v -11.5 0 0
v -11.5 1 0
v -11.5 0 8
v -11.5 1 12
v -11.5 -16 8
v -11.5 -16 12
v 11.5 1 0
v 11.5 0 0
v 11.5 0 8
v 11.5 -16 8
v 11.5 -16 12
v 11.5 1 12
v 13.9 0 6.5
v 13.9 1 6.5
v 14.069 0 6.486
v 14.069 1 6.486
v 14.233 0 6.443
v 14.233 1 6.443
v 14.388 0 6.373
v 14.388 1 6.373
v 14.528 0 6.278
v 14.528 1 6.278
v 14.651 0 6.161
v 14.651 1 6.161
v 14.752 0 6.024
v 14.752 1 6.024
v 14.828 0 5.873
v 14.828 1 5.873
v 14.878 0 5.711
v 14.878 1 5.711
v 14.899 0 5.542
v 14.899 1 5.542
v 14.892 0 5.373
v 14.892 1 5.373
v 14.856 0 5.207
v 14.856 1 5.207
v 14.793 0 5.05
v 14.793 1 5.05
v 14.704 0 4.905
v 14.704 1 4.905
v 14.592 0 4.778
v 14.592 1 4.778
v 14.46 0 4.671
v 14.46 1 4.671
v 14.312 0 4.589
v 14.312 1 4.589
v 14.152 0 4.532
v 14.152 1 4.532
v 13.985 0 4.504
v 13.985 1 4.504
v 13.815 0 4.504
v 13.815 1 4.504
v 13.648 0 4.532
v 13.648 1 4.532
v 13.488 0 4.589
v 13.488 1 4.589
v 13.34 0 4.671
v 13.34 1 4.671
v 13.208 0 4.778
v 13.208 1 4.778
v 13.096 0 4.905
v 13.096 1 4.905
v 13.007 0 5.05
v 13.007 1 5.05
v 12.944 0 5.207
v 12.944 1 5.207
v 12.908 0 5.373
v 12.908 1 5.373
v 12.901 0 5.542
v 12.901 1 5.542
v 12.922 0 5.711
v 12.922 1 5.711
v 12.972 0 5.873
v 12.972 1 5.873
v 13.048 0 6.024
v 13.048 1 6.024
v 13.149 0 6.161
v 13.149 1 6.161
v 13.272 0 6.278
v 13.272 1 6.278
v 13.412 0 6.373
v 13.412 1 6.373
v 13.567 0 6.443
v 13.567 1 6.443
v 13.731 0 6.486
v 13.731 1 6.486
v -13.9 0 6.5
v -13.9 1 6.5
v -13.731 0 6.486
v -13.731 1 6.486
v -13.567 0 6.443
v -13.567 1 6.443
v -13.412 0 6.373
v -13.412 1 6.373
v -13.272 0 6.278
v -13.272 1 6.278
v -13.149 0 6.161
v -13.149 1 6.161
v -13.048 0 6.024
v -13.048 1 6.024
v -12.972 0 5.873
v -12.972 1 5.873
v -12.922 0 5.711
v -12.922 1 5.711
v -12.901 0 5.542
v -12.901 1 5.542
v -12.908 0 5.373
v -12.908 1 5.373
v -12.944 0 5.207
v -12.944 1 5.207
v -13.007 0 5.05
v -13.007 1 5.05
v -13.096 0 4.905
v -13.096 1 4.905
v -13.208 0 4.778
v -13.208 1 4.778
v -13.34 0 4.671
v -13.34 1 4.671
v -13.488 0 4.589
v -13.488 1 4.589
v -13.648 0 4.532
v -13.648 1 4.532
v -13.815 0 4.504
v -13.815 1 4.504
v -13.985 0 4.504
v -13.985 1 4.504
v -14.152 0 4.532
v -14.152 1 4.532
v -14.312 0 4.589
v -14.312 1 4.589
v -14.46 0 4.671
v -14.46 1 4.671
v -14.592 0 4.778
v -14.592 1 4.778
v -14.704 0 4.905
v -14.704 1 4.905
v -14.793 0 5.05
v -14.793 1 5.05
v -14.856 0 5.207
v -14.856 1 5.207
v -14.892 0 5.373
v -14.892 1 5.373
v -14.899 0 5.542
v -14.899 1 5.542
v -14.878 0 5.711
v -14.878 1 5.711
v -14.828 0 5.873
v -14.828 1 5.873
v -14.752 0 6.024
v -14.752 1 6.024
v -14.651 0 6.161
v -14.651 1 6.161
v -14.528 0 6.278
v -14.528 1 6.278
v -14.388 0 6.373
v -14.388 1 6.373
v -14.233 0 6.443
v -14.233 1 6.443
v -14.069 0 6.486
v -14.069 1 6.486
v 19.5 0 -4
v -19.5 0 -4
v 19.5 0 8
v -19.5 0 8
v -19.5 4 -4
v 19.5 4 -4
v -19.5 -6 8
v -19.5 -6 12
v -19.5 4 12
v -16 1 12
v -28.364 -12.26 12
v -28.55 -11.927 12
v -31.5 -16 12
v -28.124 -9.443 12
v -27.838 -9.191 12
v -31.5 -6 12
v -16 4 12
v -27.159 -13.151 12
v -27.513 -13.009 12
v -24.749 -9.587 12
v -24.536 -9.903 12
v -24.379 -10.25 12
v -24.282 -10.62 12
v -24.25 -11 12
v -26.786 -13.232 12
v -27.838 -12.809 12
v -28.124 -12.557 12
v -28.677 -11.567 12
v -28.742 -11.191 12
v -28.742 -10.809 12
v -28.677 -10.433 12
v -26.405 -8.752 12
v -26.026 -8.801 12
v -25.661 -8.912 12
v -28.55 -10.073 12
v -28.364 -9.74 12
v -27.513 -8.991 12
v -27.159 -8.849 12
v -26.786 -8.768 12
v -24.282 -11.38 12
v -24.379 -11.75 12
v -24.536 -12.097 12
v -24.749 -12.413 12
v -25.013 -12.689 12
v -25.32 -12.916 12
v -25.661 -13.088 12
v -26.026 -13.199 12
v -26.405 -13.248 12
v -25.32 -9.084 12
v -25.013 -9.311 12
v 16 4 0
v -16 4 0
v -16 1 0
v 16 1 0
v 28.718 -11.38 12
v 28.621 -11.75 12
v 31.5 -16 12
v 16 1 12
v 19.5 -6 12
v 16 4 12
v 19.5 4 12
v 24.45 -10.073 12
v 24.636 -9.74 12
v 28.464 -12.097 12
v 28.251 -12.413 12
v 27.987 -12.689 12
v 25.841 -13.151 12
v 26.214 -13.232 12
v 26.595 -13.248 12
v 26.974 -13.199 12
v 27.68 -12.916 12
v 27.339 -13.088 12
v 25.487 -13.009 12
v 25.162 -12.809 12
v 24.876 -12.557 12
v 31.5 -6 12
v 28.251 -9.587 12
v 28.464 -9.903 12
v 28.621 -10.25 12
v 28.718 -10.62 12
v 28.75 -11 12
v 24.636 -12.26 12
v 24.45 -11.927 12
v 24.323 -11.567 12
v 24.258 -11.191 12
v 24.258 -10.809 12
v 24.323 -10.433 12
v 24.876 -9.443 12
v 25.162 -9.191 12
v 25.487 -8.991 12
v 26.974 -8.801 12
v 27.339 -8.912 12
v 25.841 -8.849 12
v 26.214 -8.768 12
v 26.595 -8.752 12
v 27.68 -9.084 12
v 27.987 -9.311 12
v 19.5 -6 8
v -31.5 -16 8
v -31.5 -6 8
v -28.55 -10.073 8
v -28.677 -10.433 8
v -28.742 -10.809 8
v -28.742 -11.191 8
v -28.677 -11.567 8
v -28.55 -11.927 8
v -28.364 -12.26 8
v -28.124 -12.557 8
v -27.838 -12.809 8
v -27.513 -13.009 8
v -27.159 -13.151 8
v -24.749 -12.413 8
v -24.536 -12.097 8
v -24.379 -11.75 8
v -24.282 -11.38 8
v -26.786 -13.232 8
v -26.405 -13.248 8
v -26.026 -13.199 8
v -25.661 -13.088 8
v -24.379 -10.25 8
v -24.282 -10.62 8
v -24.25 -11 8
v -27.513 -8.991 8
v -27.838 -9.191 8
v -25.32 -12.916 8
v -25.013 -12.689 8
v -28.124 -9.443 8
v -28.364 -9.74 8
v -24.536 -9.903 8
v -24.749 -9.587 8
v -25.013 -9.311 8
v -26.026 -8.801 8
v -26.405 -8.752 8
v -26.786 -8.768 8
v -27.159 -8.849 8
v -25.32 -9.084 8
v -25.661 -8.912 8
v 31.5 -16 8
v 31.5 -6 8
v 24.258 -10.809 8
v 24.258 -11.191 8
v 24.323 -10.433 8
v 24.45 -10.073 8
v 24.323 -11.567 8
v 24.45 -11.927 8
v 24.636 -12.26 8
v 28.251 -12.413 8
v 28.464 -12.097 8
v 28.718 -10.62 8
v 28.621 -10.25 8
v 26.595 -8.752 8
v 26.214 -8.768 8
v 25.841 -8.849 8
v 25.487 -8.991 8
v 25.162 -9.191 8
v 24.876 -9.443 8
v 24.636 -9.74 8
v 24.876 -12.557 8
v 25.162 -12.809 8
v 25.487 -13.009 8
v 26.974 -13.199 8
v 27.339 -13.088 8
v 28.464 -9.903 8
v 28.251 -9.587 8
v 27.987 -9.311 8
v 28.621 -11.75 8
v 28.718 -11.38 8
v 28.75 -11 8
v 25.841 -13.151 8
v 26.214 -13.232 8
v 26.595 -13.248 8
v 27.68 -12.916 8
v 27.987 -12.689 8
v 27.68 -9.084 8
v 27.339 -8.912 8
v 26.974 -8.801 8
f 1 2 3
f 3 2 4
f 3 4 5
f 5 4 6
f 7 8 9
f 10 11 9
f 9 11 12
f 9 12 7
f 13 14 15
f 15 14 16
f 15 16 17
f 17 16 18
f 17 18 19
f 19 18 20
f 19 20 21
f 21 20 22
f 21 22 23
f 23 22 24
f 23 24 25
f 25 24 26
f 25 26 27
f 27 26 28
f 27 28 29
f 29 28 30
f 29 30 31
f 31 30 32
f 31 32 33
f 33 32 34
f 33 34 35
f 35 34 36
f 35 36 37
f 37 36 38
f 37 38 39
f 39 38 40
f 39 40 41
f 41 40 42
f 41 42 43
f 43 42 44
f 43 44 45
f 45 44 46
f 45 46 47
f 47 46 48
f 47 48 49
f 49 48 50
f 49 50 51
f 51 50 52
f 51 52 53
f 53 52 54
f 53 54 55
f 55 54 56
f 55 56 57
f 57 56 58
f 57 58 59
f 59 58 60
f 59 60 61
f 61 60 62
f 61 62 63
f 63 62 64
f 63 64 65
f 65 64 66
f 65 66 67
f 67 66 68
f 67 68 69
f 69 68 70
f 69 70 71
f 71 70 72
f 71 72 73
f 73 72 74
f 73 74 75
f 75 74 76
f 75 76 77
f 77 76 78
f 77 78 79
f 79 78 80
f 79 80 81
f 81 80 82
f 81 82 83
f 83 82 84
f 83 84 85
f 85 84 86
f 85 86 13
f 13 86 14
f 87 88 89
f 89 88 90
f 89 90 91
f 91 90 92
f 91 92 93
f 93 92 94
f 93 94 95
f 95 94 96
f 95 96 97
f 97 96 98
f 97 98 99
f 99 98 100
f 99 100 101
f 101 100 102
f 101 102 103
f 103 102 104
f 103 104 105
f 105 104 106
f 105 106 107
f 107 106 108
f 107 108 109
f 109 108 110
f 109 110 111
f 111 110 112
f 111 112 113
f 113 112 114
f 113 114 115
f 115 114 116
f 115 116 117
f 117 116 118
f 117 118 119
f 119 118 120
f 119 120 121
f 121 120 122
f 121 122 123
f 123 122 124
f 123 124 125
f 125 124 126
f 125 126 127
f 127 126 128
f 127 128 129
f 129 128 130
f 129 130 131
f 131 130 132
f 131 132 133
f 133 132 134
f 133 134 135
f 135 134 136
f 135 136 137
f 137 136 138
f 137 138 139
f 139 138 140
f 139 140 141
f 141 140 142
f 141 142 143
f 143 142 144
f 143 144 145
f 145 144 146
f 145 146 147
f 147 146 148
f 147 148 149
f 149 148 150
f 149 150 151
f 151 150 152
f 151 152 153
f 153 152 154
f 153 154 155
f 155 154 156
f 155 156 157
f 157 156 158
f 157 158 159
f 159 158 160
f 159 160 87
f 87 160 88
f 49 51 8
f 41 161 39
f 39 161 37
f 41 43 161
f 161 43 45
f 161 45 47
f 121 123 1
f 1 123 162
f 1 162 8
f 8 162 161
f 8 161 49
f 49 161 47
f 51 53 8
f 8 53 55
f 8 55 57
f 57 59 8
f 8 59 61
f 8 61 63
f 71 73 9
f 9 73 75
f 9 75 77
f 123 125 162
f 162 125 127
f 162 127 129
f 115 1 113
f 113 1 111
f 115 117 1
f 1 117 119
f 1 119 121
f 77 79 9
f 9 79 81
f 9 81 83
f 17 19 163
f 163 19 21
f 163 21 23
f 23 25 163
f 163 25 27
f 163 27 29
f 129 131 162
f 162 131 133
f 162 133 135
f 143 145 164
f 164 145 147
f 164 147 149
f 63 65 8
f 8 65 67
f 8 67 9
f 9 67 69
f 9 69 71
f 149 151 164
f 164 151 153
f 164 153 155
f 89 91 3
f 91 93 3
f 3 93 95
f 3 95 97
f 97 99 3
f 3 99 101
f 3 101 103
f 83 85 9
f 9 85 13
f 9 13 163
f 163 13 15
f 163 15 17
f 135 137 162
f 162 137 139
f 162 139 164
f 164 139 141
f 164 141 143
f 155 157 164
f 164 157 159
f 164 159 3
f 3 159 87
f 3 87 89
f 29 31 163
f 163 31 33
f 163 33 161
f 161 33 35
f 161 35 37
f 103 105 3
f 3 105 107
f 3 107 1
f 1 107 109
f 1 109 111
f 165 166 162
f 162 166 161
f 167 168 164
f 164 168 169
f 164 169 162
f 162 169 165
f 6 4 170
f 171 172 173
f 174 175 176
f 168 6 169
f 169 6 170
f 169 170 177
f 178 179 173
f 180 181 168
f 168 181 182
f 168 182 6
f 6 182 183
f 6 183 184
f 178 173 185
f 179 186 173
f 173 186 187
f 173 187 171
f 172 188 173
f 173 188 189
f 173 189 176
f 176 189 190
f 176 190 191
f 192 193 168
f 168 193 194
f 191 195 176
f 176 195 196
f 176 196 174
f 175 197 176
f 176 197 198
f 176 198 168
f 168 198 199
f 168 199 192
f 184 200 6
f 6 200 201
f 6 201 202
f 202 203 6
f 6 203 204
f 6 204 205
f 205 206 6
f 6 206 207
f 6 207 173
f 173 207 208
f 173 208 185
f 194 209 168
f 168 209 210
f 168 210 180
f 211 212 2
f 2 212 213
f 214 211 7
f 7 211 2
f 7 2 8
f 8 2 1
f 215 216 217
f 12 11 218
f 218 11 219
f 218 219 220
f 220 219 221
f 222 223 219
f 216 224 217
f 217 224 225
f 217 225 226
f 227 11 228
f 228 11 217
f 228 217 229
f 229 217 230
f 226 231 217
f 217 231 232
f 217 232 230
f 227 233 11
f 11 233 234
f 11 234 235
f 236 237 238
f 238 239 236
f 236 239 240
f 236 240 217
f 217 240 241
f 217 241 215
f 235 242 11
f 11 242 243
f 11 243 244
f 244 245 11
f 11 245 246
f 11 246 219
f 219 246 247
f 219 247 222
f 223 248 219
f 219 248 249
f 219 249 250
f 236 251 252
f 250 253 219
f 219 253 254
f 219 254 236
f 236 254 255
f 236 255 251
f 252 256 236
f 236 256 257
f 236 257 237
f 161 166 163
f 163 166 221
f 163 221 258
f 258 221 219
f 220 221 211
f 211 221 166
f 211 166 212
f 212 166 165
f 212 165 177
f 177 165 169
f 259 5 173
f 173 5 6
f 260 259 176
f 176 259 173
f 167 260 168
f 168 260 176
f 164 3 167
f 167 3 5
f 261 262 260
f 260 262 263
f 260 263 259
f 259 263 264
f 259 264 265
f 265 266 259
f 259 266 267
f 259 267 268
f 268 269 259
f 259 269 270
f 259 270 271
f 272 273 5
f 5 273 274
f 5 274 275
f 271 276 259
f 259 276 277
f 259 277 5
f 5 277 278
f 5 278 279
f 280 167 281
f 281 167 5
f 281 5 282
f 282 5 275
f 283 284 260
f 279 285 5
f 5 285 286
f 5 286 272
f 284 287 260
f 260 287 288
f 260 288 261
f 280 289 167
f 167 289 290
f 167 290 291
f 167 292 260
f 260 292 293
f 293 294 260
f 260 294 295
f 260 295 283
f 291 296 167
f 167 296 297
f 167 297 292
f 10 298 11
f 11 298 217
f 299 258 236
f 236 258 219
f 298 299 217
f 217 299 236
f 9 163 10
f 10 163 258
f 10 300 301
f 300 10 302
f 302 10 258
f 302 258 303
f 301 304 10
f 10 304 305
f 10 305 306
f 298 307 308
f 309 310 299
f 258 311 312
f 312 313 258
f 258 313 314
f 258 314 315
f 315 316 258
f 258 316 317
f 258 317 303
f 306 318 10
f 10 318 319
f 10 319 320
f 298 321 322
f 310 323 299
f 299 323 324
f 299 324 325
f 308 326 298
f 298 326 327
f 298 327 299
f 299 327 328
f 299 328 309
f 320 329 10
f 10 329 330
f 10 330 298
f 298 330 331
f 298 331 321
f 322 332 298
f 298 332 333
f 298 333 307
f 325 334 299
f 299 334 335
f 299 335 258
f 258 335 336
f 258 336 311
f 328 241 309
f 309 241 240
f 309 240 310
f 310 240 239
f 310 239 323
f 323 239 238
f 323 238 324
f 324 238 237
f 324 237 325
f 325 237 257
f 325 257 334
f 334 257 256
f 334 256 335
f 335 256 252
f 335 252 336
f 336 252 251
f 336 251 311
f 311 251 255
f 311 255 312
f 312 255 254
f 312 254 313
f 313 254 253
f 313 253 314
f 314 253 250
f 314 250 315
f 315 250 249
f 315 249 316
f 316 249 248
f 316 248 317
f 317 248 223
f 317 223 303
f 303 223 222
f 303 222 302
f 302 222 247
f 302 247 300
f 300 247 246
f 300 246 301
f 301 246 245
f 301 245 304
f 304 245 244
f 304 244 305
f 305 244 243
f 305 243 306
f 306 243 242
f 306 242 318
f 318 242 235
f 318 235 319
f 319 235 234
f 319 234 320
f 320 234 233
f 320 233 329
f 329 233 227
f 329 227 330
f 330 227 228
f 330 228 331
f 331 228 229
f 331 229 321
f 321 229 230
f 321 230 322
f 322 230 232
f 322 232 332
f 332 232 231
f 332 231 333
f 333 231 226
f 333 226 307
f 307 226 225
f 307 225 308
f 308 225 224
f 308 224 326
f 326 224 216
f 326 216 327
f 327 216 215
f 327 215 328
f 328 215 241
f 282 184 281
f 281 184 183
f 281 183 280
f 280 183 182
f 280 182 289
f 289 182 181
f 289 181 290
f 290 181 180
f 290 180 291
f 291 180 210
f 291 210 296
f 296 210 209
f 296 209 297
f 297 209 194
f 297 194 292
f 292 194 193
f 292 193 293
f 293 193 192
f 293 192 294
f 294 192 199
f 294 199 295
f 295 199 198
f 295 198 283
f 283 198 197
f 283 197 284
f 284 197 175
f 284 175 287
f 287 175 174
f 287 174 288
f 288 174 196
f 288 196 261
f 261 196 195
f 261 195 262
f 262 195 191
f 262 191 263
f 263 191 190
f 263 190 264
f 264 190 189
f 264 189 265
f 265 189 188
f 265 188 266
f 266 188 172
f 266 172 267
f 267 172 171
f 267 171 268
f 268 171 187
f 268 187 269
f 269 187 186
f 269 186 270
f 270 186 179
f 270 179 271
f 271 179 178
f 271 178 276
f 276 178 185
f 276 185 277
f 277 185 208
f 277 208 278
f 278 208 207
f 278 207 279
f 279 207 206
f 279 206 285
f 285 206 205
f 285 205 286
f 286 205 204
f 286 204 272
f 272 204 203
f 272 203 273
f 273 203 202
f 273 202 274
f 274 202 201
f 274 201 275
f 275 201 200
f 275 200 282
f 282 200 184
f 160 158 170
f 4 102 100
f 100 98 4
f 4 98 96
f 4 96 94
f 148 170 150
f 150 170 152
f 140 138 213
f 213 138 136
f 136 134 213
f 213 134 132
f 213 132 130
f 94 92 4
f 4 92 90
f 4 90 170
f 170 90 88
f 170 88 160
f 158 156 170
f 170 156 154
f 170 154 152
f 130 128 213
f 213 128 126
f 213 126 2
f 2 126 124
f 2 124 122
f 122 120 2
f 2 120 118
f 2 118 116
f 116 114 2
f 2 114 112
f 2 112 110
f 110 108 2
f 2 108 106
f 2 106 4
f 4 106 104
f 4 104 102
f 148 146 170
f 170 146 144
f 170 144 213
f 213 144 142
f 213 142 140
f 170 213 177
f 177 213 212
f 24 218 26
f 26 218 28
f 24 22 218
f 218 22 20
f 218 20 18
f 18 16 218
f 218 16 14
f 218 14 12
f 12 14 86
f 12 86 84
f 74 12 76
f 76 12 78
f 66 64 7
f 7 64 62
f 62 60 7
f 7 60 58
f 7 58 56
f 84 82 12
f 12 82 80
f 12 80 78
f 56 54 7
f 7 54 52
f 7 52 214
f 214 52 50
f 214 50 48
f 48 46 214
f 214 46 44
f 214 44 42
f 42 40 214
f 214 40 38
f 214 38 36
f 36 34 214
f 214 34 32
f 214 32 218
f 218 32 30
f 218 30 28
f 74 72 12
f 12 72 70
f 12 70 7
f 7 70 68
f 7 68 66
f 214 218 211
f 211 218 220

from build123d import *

# Parameters (mm, degrees)
RESSALTO_EXTRUS_O1_DEPTH   = 4
FURO_DE_DI_METRO_2_0_2_1_D = 2
RESSALTO_EXTRUS_O2_DEPTH   = 4
FURO_COM_FOLGA_DE_M41_D    = 4.5
ESBO_O6_W                  = 32
ESBO_O6_H                  = 12
CORTE_EXTRUS_O1_DEPTH      = 3


with BuildPart() as part:
    # Esboço1 → Ressalto-extrusão1 (new body)
    with BuildSketch(Plane(origin=(0, 0, 0), x_dir=(1, 0, 0), z_dir=(0, 1, 0))):
        Polygon((-19.5, 4), (-19.5, -12), (-11.5, -12), (-11.5, 0), (11.5, 0), (11.5, -12), (19.5, -12), (19.5, 4), align=None)
    extrude(amount=RESSALTO_EXTRUS_O1_DEPTH)

    # Furo de diâmetro Ø2.0 (2)1 (through all)
    with Locations(Plane(origin=(-13.9, 4, 5.5), x_dir=(0, 0, 1), z_dir=(0, 1, 0))):
        with Locations((0, 0), (0, 27.8)):
            Hole(FURO_DE_DI_METRO_2_0_2_1_D / 2)

    # Esboço4 → Ressalto-extrusão2 (add)
    with BuildSketch(Plane.XY.offset(12)):
        Polygon((31.5, -16), (31.5, -6), (19.5, -6), (19.5, 4), (11.5, 4), (11.5, -16), align=None)
        Polygon((-19.5, 4), (-11.5, 4), (-11.5, -16), (-31.5, -16), (-31.5, -6), (-19.5, -6), align=None)
    extrude(amount=-RESSALTO_EXTRUS_O2_DEPTH)

    # Furo com folga de M41 (through all)
    with Locations(Plane(origin=(-26.5, -11, 12), x_dir=(1, 0, 0), z_dir=(0, 0, 1))):
        with Locations((0, 0), (53, 0)):
            Hole(FURO_COM_FOLGA_DE_M41_D / 2)

    # Esboço6 → Corte-extrusão1 (cut)
    with BuildSketch(Plane(origin=(0, 4, 0), x_dir=(1, 0, 0), z_dir=(0, 1, 0))):
        with Locations((0, -6)):
            Rectangle(ESBO_O6_W, ESBO_O6_H)
    extrude(amount=-CORTE_EXTRUS_O1_DEPTH, mode=Mode.SUBTRACT)


solid = part.part
